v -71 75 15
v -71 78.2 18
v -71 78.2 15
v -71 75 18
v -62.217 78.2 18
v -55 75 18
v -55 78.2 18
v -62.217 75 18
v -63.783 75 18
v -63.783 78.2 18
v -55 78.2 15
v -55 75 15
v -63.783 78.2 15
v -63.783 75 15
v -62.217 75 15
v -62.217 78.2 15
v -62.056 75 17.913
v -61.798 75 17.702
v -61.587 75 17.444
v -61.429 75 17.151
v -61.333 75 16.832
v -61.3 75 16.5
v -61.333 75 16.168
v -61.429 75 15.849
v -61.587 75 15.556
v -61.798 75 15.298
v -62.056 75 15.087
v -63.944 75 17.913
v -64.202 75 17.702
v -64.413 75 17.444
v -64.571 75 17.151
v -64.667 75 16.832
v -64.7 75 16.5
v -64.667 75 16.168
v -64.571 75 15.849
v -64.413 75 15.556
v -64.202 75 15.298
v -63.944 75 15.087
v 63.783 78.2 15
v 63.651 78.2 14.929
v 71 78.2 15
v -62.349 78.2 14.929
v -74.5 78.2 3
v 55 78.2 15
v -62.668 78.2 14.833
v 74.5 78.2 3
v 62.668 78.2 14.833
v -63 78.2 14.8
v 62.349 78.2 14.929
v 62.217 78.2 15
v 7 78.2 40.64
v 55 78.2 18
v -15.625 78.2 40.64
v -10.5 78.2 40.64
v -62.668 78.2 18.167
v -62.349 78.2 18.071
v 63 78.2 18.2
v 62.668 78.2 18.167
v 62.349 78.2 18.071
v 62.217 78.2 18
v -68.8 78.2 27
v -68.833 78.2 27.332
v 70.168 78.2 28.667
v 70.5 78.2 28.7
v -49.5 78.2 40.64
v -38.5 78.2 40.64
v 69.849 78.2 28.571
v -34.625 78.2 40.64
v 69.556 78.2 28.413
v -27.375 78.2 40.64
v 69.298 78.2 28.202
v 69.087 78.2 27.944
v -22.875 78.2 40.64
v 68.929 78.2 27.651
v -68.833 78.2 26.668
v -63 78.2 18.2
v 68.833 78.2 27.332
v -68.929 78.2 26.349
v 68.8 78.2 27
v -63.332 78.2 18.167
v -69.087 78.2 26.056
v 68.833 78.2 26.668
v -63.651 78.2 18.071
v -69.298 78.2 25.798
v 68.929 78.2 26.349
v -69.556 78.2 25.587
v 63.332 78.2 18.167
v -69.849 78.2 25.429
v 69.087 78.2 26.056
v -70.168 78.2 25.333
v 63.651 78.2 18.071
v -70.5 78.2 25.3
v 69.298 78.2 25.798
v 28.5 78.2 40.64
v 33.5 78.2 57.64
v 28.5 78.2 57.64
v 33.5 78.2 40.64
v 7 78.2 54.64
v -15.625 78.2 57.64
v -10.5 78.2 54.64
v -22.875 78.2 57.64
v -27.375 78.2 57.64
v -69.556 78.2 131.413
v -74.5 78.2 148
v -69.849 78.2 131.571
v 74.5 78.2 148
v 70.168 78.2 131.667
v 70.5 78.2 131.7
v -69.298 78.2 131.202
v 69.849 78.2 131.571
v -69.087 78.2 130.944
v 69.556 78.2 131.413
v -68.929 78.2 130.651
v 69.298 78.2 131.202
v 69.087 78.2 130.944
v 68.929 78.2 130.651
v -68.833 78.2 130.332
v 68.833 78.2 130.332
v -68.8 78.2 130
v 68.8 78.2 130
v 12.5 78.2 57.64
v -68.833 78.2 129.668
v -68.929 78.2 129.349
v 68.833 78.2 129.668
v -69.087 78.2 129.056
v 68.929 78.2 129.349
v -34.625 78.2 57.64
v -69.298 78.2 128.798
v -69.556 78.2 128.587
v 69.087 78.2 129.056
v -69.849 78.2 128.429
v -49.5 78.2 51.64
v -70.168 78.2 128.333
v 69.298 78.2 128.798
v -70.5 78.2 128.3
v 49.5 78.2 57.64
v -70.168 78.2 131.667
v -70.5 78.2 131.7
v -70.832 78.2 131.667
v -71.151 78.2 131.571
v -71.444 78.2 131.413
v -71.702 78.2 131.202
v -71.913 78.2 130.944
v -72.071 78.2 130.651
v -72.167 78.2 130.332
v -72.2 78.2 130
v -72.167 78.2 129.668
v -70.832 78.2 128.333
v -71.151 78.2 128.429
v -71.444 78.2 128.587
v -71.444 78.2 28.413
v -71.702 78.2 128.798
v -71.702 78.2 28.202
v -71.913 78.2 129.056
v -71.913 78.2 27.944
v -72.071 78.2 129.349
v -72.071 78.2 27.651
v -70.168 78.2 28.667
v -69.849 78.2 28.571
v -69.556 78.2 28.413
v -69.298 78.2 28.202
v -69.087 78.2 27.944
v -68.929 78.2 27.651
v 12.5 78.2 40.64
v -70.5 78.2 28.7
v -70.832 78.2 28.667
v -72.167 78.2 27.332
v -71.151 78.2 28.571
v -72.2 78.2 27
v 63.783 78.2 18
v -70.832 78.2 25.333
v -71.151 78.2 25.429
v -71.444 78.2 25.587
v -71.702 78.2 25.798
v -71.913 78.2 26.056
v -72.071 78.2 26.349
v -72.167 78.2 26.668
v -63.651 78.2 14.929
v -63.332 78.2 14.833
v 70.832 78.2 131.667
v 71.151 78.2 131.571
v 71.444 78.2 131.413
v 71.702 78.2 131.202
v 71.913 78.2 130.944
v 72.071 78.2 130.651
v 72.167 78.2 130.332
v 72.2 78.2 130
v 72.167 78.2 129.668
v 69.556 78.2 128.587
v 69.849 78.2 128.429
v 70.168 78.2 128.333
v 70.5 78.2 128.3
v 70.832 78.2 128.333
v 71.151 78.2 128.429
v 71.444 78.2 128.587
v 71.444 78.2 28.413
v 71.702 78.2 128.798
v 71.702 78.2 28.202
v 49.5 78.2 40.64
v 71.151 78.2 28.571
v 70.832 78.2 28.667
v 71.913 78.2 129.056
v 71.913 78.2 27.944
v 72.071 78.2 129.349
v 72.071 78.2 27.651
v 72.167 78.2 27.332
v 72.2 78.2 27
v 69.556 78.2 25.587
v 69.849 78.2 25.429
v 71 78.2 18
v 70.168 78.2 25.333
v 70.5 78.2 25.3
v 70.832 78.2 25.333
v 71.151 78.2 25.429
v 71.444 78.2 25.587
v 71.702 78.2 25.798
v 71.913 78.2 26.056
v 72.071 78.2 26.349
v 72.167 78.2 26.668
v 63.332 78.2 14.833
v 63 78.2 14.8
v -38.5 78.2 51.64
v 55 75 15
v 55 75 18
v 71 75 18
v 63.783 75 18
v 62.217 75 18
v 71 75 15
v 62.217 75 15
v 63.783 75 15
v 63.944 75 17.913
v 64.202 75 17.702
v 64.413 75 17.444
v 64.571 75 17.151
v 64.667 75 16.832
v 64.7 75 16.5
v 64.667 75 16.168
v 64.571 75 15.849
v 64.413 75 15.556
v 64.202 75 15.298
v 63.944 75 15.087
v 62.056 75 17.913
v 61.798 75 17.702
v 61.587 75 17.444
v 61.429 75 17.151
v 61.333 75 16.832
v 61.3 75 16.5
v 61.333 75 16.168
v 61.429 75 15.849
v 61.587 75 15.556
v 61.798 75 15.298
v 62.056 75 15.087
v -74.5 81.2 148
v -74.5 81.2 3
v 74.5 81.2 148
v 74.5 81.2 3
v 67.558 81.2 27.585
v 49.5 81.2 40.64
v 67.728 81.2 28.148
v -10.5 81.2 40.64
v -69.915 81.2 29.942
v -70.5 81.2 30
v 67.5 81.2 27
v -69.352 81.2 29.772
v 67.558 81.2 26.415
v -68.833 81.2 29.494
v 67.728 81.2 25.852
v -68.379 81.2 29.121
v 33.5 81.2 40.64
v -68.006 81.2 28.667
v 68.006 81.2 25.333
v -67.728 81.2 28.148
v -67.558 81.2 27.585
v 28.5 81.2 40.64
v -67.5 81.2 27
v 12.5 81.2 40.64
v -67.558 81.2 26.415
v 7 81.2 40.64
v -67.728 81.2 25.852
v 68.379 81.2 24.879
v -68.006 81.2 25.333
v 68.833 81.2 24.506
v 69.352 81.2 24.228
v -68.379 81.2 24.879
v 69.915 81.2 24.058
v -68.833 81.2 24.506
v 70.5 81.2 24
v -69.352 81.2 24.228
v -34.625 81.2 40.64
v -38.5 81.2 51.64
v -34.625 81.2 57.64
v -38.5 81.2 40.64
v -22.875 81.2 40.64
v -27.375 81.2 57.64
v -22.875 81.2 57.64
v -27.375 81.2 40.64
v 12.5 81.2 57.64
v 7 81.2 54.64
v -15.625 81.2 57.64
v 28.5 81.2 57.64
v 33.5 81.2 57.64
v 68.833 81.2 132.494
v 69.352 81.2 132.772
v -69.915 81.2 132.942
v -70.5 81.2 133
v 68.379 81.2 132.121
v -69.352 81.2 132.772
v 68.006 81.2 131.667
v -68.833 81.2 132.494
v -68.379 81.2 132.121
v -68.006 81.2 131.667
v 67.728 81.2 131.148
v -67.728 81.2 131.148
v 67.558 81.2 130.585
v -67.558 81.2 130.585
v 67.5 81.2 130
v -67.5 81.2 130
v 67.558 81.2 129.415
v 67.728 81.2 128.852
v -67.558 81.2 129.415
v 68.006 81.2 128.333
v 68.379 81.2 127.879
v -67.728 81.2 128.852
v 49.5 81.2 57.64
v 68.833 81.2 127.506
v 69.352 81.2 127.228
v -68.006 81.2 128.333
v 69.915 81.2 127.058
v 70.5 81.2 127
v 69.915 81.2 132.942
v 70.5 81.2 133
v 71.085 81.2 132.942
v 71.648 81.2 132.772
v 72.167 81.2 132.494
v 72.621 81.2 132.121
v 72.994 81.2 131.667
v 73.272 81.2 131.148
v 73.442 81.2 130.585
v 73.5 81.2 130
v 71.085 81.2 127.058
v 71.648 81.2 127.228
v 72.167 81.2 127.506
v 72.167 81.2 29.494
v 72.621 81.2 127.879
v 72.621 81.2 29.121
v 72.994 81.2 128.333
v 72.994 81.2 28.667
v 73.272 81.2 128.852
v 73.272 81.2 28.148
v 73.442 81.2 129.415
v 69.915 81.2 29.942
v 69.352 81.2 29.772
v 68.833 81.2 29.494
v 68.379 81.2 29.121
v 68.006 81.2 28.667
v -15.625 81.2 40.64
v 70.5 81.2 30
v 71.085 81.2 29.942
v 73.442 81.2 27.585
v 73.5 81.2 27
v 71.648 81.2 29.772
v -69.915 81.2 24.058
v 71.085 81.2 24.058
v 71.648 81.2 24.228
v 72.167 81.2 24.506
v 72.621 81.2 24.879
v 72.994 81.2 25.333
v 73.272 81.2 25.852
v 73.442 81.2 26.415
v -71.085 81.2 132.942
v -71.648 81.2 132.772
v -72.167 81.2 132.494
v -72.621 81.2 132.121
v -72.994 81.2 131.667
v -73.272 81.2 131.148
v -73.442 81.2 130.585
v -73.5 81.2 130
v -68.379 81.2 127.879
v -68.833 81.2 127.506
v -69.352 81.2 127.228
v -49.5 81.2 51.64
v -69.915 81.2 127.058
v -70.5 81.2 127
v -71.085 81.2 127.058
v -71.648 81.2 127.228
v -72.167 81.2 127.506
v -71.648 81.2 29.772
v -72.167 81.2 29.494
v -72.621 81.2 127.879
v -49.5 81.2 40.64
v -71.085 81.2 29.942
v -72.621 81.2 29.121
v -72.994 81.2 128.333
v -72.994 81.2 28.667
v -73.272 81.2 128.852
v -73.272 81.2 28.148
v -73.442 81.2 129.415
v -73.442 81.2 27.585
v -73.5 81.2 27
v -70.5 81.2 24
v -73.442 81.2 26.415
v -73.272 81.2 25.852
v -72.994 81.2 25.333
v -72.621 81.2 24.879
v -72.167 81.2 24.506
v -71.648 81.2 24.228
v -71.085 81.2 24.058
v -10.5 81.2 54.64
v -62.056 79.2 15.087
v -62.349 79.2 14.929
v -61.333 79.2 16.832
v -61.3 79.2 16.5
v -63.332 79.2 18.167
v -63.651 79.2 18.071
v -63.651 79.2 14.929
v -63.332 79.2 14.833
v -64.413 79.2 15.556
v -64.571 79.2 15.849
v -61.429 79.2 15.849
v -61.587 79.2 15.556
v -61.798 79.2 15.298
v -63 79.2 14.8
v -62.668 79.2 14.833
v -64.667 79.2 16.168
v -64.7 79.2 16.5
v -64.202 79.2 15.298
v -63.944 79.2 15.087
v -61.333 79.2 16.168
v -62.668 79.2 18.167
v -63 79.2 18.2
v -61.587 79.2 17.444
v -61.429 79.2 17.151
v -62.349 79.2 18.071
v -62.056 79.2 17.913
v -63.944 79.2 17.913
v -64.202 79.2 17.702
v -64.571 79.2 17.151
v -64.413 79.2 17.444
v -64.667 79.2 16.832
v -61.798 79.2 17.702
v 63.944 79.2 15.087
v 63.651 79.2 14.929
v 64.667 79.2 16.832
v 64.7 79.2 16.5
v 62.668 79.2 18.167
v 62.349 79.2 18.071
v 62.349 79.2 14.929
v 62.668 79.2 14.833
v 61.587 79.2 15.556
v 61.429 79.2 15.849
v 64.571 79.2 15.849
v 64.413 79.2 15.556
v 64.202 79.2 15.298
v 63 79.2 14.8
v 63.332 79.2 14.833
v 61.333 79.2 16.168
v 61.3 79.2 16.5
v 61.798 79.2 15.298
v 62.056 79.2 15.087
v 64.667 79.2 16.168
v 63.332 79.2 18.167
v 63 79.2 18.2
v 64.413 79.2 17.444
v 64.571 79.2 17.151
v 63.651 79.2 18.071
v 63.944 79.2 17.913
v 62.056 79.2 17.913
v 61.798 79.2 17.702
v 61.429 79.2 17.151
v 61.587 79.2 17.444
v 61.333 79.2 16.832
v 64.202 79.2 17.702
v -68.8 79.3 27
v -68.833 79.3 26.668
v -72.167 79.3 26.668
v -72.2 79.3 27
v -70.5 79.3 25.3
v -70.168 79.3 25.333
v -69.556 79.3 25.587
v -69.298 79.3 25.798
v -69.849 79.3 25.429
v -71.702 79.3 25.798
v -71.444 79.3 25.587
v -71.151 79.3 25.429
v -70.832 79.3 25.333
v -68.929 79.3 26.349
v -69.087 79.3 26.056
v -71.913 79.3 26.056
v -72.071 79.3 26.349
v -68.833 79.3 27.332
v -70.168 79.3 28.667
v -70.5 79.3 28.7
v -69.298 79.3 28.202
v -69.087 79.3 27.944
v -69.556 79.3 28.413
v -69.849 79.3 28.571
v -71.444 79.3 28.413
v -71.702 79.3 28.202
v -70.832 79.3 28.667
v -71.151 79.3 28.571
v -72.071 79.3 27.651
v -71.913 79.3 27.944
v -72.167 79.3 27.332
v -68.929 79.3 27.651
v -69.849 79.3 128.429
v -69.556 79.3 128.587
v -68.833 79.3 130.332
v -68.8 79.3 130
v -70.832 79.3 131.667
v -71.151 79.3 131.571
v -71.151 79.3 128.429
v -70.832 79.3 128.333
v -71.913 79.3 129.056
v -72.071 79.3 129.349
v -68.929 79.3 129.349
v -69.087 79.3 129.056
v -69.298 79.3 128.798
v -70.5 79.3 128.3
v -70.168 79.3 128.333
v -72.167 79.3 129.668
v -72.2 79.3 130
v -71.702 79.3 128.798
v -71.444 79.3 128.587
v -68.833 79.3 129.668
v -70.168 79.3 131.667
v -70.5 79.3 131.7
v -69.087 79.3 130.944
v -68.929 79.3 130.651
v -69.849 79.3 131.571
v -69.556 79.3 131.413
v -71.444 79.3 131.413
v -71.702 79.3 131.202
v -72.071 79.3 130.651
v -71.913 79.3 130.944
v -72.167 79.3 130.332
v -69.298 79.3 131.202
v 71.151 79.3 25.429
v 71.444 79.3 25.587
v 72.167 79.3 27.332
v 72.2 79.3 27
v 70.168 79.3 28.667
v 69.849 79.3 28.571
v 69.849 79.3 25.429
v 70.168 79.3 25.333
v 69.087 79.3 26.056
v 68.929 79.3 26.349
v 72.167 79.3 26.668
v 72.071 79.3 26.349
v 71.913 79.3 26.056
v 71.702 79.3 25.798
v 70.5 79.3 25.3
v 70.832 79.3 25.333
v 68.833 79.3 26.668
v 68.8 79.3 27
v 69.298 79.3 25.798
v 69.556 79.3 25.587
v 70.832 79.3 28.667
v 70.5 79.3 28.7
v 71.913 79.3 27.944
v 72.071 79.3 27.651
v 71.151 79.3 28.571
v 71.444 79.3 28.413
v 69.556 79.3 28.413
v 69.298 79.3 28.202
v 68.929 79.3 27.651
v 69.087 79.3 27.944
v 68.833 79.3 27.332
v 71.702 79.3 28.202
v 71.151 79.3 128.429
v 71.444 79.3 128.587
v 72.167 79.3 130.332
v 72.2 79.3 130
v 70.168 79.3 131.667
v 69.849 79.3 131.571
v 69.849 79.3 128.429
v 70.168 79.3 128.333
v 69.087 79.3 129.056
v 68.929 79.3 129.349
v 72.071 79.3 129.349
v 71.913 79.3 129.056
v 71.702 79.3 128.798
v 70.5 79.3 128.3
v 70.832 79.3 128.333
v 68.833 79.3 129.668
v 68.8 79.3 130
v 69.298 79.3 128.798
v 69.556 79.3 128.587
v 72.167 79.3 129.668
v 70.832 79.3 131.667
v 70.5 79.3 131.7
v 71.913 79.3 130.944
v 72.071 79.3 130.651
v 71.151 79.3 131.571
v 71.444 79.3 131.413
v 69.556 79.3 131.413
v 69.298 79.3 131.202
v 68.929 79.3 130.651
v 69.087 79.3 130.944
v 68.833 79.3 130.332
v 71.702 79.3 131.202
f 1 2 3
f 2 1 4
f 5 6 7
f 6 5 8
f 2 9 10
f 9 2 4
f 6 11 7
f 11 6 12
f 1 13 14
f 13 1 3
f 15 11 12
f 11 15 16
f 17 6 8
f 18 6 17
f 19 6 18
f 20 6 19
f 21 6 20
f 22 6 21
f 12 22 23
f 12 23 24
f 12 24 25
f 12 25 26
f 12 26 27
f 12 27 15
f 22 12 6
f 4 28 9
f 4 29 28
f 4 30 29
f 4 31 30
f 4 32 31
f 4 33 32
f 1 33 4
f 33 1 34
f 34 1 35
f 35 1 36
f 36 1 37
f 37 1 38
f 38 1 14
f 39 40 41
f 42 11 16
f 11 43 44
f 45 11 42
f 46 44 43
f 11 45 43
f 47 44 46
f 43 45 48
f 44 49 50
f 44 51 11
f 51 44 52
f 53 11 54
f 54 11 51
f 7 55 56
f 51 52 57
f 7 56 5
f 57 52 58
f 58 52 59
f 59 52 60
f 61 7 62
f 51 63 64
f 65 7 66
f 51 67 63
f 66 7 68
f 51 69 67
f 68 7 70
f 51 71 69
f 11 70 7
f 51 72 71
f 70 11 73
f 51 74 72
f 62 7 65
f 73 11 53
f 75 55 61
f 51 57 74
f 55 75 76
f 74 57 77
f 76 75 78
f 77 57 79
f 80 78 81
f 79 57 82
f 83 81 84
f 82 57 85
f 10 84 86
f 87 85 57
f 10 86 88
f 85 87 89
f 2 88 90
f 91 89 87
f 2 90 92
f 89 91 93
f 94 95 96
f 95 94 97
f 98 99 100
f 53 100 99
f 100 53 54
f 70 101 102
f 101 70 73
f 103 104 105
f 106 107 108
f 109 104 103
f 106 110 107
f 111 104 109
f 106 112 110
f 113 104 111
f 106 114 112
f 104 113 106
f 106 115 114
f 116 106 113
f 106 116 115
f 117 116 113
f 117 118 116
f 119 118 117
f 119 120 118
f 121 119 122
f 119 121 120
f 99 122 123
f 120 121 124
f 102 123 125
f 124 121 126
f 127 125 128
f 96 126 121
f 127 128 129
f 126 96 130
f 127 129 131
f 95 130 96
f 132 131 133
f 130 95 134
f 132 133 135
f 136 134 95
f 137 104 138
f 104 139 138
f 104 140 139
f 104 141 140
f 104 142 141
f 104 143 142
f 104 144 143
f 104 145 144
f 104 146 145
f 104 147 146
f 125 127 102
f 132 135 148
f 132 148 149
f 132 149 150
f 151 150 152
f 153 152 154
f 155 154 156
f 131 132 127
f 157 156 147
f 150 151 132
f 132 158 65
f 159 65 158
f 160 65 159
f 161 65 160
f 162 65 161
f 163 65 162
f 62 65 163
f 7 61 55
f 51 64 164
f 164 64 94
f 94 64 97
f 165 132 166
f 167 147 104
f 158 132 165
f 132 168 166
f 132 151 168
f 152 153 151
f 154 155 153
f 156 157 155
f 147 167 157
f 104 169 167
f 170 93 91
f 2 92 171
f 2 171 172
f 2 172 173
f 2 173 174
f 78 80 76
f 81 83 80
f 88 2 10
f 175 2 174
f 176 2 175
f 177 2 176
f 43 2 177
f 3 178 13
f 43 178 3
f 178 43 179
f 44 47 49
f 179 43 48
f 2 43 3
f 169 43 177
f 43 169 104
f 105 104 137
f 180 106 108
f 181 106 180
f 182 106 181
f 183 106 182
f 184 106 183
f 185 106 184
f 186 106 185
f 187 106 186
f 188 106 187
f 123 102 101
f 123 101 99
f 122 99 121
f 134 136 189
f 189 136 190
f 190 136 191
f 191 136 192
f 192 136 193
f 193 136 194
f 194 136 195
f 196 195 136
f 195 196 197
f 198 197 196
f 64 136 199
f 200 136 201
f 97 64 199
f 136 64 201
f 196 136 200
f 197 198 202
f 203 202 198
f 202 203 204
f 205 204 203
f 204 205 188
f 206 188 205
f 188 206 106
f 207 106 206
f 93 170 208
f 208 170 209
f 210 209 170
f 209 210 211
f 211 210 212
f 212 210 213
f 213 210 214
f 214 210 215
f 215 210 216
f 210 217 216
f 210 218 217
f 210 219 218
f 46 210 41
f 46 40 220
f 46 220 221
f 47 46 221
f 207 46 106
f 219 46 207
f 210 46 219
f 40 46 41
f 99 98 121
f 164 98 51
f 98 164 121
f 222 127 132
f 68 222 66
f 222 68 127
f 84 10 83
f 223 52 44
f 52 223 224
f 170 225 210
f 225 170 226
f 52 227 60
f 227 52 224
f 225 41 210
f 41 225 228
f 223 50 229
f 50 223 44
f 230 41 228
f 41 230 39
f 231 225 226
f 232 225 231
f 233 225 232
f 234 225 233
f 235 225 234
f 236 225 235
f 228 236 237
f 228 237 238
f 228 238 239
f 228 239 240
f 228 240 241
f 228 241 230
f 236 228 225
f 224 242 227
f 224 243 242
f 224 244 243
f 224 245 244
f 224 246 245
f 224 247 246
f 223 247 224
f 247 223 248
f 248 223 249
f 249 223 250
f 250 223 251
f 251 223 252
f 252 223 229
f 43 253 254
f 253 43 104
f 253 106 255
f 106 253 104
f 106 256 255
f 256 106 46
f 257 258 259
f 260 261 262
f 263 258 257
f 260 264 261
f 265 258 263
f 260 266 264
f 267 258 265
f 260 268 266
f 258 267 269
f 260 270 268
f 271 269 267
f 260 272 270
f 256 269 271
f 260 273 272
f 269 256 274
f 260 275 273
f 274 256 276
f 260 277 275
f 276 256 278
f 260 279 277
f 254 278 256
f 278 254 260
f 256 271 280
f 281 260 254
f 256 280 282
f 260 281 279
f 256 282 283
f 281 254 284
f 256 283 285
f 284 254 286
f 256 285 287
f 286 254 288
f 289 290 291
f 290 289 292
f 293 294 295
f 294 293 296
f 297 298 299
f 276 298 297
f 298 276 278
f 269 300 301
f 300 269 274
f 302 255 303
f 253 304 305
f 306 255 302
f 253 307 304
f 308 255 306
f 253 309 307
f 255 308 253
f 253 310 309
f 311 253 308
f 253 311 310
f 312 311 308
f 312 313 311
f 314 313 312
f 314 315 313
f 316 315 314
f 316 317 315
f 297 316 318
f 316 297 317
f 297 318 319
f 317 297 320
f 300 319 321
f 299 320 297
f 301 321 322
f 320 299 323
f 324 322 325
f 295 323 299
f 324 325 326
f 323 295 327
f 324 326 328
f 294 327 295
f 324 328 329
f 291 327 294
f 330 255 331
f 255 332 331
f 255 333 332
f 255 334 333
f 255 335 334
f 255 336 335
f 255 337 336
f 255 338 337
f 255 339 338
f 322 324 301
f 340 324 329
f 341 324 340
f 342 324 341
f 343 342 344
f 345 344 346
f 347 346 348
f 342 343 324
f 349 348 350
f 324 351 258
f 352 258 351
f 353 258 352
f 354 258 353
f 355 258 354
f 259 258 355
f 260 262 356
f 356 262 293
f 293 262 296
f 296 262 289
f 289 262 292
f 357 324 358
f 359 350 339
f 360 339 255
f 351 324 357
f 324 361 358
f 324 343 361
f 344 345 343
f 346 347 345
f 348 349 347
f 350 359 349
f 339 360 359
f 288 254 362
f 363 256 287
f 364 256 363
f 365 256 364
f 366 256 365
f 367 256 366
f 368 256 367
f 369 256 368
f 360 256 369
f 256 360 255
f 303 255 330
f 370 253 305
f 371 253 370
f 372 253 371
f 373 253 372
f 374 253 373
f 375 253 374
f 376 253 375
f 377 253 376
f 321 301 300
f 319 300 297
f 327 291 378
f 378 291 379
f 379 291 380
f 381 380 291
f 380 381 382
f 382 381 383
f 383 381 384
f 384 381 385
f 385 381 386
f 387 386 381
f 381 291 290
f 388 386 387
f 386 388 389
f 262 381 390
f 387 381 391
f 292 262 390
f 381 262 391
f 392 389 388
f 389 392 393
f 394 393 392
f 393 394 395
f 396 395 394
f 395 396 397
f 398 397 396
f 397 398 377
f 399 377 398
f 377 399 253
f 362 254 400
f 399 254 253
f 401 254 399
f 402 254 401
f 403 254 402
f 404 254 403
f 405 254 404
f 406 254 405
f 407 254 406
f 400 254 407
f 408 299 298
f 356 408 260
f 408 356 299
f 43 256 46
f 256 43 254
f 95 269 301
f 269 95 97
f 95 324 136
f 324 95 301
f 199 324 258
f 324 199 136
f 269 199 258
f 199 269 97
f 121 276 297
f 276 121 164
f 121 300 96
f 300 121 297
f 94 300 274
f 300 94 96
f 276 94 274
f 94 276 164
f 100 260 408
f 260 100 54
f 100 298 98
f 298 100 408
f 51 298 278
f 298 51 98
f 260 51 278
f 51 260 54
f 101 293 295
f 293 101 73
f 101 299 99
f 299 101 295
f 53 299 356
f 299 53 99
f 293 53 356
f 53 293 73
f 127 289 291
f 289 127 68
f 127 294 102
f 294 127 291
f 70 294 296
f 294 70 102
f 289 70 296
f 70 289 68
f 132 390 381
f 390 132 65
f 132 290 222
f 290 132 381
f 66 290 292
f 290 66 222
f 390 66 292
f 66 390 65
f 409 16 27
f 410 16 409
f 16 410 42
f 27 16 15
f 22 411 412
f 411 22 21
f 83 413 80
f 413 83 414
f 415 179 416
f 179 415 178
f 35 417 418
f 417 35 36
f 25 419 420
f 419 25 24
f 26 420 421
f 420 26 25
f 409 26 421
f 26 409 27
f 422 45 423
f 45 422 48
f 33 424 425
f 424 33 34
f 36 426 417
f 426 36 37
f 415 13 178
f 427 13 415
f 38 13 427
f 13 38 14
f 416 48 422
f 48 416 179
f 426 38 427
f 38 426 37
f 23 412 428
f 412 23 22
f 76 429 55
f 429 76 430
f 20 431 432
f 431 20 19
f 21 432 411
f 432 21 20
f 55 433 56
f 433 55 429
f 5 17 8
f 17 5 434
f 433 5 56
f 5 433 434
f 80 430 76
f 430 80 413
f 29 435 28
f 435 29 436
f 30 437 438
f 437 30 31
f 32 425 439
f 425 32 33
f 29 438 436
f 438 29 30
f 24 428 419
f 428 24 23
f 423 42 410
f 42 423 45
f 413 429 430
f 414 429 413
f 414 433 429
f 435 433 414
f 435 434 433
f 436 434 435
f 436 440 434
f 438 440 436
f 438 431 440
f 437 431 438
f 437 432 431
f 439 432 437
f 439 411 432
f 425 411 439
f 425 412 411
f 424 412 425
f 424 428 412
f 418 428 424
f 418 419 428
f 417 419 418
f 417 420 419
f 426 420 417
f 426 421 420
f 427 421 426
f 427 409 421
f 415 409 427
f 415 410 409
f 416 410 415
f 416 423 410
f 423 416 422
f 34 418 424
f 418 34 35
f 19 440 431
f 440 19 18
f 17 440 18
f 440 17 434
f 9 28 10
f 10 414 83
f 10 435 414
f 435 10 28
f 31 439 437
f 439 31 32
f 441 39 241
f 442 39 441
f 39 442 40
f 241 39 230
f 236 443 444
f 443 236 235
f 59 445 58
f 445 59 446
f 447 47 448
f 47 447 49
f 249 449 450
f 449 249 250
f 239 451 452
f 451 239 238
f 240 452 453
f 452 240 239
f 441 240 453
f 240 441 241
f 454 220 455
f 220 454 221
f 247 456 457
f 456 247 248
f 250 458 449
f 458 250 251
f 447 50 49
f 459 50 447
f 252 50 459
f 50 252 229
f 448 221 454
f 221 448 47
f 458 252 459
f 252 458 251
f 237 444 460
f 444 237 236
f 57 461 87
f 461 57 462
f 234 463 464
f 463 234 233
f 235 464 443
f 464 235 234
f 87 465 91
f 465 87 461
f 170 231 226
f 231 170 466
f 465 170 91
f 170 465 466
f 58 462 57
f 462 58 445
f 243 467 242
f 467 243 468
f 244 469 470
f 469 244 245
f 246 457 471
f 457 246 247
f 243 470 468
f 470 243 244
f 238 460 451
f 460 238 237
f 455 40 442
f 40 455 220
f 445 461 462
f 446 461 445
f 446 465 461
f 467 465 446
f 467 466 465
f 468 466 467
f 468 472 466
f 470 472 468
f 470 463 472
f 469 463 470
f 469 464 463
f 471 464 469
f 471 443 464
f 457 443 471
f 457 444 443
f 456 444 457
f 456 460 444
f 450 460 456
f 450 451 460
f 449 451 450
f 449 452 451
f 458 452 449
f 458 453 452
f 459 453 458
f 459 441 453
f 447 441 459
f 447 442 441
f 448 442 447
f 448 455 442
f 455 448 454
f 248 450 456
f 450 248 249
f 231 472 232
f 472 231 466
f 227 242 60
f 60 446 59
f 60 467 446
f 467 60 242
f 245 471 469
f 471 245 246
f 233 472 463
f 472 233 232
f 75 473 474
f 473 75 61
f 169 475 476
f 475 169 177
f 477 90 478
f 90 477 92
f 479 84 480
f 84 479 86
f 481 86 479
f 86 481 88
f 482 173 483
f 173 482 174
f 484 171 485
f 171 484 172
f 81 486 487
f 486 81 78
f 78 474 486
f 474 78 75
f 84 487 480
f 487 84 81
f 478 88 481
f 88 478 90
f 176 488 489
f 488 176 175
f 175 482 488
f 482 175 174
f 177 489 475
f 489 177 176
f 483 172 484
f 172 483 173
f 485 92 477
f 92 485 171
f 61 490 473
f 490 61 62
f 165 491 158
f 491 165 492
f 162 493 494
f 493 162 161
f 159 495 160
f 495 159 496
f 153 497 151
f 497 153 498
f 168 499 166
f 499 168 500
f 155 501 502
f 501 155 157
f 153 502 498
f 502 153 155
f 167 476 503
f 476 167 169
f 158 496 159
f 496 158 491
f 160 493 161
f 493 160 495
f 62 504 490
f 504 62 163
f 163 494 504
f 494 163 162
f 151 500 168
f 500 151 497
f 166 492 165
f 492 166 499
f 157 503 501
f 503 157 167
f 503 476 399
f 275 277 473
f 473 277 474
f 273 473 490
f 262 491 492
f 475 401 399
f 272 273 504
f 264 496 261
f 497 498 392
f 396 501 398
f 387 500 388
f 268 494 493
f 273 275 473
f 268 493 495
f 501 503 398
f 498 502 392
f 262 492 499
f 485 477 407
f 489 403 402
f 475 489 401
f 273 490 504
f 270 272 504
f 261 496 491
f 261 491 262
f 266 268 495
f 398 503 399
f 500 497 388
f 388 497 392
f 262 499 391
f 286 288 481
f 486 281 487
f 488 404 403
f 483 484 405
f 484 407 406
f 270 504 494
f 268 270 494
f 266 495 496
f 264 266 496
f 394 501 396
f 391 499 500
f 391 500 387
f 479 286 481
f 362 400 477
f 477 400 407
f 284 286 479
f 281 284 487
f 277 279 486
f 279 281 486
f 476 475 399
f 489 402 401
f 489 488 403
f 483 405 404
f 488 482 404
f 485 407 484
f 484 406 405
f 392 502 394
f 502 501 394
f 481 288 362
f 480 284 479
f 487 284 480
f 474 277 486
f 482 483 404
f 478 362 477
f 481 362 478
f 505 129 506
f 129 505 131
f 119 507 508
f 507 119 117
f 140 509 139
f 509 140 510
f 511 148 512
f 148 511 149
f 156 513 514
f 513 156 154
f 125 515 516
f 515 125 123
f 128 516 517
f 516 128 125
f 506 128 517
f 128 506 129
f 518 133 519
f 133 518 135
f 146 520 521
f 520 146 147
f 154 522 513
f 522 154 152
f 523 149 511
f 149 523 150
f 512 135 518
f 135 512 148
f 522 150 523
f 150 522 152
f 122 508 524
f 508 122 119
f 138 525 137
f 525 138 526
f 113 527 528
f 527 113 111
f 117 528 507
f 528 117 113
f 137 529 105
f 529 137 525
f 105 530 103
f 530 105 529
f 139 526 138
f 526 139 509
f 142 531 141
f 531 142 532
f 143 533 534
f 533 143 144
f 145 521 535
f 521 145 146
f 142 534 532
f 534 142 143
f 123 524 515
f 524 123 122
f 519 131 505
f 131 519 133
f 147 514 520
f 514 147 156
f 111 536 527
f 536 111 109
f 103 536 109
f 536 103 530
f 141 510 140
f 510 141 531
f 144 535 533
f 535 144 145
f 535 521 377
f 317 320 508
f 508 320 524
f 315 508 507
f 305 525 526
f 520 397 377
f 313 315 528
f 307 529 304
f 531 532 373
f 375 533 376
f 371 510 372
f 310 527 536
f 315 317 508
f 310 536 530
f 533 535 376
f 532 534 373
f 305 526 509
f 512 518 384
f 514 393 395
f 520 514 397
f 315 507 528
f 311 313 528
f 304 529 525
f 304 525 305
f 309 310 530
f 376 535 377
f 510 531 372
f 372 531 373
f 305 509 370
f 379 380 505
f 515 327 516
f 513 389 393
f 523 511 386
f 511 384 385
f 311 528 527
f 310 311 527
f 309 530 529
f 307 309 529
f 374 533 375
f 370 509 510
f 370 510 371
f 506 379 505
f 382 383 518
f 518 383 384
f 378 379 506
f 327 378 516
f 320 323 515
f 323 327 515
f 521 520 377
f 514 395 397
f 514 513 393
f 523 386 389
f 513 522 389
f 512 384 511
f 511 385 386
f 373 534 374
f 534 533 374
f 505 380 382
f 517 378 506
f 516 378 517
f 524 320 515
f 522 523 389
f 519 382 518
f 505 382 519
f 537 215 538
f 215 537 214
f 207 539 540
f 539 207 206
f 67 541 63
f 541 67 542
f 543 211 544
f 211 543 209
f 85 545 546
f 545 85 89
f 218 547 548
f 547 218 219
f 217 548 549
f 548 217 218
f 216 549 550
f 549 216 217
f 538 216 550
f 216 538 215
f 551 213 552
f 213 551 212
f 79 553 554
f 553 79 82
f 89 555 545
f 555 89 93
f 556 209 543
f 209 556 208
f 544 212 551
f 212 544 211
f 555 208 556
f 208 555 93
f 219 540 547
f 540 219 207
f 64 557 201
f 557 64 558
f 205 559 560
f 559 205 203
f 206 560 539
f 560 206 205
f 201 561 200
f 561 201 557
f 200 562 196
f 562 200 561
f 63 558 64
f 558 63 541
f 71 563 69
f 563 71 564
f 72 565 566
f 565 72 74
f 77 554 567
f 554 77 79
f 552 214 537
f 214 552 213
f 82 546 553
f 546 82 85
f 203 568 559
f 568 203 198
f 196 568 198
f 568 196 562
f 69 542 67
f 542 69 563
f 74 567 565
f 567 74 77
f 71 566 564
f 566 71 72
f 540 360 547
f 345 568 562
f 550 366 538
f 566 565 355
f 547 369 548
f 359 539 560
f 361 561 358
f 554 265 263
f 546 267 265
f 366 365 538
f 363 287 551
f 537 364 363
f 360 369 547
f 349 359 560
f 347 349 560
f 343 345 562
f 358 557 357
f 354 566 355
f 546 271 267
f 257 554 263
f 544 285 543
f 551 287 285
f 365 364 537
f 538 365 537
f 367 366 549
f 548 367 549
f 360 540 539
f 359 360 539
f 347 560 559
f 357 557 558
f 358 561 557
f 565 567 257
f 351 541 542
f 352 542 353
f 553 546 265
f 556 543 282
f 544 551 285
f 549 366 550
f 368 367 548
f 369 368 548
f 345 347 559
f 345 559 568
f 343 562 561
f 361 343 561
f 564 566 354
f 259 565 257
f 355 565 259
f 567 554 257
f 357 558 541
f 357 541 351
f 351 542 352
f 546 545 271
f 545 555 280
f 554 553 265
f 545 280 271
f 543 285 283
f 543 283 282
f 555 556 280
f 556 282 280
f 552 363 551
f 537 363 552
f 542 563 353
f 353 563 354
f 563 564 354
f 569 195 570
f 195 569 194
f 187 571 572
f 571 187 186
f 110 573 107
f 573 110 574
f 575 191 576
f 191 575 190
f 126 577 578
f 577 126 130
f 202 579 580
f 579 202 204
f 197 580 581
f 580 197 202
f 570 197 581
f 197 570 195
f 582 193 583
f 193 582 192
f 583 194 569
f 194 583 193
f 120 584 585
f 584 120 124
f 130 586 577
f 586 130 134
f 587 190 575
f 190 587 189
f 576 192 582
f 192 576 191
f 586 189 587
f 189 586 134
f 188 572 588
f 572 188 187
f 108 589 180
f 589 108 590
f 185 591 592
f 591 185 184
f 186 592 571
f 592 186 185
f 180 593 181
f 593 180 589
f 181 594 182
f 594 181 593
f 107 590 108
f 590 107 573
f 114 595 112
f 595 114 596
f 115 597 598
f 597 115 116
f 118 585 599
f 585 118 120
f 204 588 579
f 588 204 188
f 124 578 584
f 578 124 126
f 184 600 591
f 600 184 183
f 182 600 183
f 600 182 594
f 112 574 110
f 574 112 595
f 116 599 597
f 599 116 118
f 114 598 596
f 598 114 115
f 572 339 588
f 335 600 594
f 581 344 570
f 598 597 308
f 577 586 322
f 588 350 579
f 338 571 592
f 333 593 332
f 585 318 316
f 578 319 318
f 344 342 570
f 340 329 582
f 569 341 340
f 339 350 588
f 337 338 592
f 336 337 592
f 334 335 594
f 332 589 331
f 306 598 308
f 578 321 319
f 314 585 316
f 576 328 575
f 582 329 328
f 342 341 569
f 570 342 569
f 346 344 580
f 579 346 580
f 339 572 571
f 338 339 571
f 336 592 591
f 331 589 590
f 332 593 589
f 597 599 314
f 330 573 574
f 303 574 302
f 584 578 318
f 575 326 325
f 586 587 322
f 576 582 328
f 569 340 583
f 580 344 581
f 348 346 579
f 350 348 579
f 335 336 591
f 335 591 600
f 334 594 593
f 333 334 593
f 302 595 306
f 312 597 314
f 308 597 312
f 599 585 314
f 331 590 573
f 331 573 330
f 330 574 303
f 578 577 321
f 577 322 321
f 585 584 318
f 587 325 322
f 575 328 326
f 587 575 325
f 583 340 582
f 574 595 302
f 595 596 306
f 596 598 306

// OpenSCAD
//
// ============================================================================
// SteamMachine UM790
// Project Phoenix
//
// Archivo  : rear_panel.scad
// Versión  : 1.0
// Fecha    : 2026-08-03
// Autor    : Pep Ventura (asistido por Claude)
//
// Panel trasero — va UNIDO A LA BANDEJA, no al chasis fijo
// (docs/DESIGN_RULES.md: "El panel trasero irá unido a la bandeja.
// Al extraer la bandeja saldrá también el panel trasero.").
//
// Incluye el recorte de acceso a la IO trasera del UM790
// (conectores: RJ45/USB/alimentación), en la posición ya validada en
// el ensamblaje virtual (um790_pos, um790_rearIO_*, ver
// openscad/reference/components/assembly_positions.scad y um790.scad).
//
// Sistema de coordenadas: igual que
// openscad/reference/components/assembly_positions.scad — origen
// centrado en X/Y, Z=0 en la cara inferior exterior del chasis.
//
// ============================================================================

include <../../../00_parametros.scad>;
include <../../reference/components/assembly_positions.scad>;

$fn = 32;

part_version = "1.0";


//=============================================================================
// MARGEN DE RECORTE DE LA IO TRASERA
//=============================================================================

rear_io_cut_margin = 0.5;  // holgura alrededor de cada conector — reducido de 1mm: con la disposición real del plano, el hueco natural más ajustado (RJ45-USB, 1,75mm) se fusionaba incluso con 1mm de margen. Con 0,5mm queda un separador real de ~0,75mm en el punto más justo.


//=============================================================================
// PLACA MACIZA
//=============================================================================

// AJUSTADO (2026-08-16, mismo criterio que nfc_panel_width y
// lower_panel_width_oversize, confirmado con probeta real): el
// hueco interior real del chasis mide 149mm, no 150mm — mismo
// ajuste aplicado aquí para que los tres paneles frontales/trasero
// coincidan. rear_panel_width definido en 00_parametros.scad (no
// aquí) para que probeta_panel_trasero.scad pueda reutilizar el
// mismo valor sin depender de un `use` a este archivo (las
// variables no se exponen con `use`, solo los módulos).

module rearPanelSolid()
{

    // FALLO CORREGIDO (2026-08-03): el panel arrancaba en Z=0, el
    // mismo espacio que ya ocupa el suelo del chasis fijo (floor.scad)
    // en su borde trasero — colisión real entre dos piezas distintas.
    // Ahora arranca en bottom_thickness, apoyado ENCIMA del suelo, no
    // dentro de él.
    //
    // FALLO CORREGIDO (2026-08-03): el ancho (case_width = 156 mm)
    // solapaba el propio grosor de las paredes laterales (que ocupan
    // X desde ±75 hasta ±78) — colisión real de volumen, no un simple
    // contacto. El panel debe encajar ENTRE las paredes, no
    // solaparlas: ancho corregido a case_width - 2*wall_thickness
    // (150 mm), igual que la bandeja (tray_width) y el panel NFC
    // (nfc_panel_width).
    translate([
        -rear_panel_width/2,
        case_depth/2 - wall_thickness,
        bottom_thickness
    ])

        cube([rear_panel_width, wall_thickness, shell_height-bottom_thickness]);

}


//=============================================================================
// RECORTE DE LA IO TRASERA DEL UM790
//
// Posición derivada de um790_pos (assembly_positions.scad) y de las
// dimensiones del bloque de IO trasera definidas en um790.scad
// (um790_rearIO_width/height, 00_parametros.scad), con un margen para
// que los conectores sean accesibles sin rozar el borde impreso.
//=============================================================================

//=============================================================================
// RECORTES INDIVIDUALES DE CADA CONECTOR DE LA IO TRASERA DEL UM790
//
// PEDIDO POR EL USUARIO (2026-08-03): cada conector con su propio
// recorte, delimitado a su tamaño real (no un hueco genérico).
//
// ACTUALIZADO (2026-08-03, foto real con regla aportada por el
// usuario: "el panel trasero no se adapta a la realidad") — el
// "plano de distribución" de texto usado antes tenía un orden y
// agrupación que NO coinciden con la placa real. Sustituido por la
// disposición que se ve directamente en la foto:
//
//   Orden real, de izquierda a derecha (vista desde atrás, mirando
//   los conectores de frente): USB×2 (apilados verticalmente) |
//   USB×2 (apilados verticalmente) | RJ45 | HDMI | HDMI (uno junto
//   al otro, NO apilados) | conector de alimentación DC.
//
// Esto corrige dos fallos de la versión anterior (basada en el plano
// de texto, que resultó no coincidir): el orden estaba invertido
// (DC-HDMI-RJ45-USB en vez de USB-RJ45-HDMI-DC) y los HDMI estaban
// apilados verticalmente en vez de uno al lado del otro.
//
// Ancho total: estimado con la regla visible en la foto (~108mm) —
// coincide razonablemente con la suma de los tamaños estándar de
// cada conector más separaciones (~102mm), así que la escala es
// creíble. La posición exacta de cada uno dentro de esa fila es una
// distribución uniforme según lo que se aprecia en la foto, no una
// medida milimétrica exacta — pendiente de confirmar si hay forma de
// medirlo con más precisión.
//=============================================================================

// PEDIDO POR EL USUARIO (2026-08-16): "te adjunto el fichero que ya
// he convertido en DXF" — dibujo real a escala en AutoCAD (unidades
// del archivo: centímetros, INSUNITS=5, confirmado antes de usar los
// datos) con las medidas exactas de cada conector trasero. Sustituye
// por completo las estimaciones anteriores basadas en la foto (orden
// USB-USB-RJ45-HDMI-HDMI-DC, y la orientación vertical del HDMI, ya
// acertadas — ahora con medidas precisas en vez de estimadas).
//
// Cada USB apilado es UN ÚNICO recorte rectangular (15x16mm) que
// cubre los dos puertos como una sola abertura — así viene dibujado
// en el CAD, no como dos huecos individuales con separación estimada
// (rear_usb_stack_pitch, ya no se usa).
//
// Referencia Y del CAD verificada contra el proyecto: coincide con
// z_pcb_bottom + Z, casi exacta (0,36mm de diferencia) con el valor
// que ya se usaba antes por estimación — se usan los valores medidos
// directamente, sin necesidad de reajustar el origen.

rear_dc_jack_diameter = 10.0;   // Medido en CAD — 10x10mm CUADRADO (ver nota de corrección abajo)
rear_hdmi_width  = 6.25; rear_hdmi_height = 16.0;  // Medido en CAD (promedio de los dos HDMI: 6,5 y 6,0mm de ancho; antes 6x15, estimado)
rear_rj45_width  = 16.5; rear_rj45_height = 13.0;  // Medido en CAD (antes 16x13.5, estimado — casi igual)
rear_usb_width   = 15.0; rear_usb_height  = 16.0;  // Medido en CAD — recorte único por pareja apilada, no un puerto individual (antes 13x6, estimado, para un solo puerto)
rear_io_center_z = 11.14;  // Medido en CAD (Z = z_pcb_bottom + esto = 49,14, la Z real de USB/HDMI; antes 11.5, estimado)

module rearIOCut()
{

    // [x relativo al centro del grupo (medido en CAD, ya con el
    // espejo trasero->delantero aplicado), ancho, alto, Z propia
    // (si difiere de la Z común), es_redondo]
    connectors = [
        [-41.50, rear_usb_width,       rear_usb_height,       z_pcb_bottom+rear_io_center_z, false],  // USB pareja 1 (recorte único)
        [-20.50, rear_usb_width,       rear_usb_height,       z_pcb_bottom+rear_io_center_z, false],  // USB pareja 2 (recorte único)
        [  1.75, rear_rj45_width,      rear_rj45_height,      z_pcb_bottom+9.64,             false],  // RJ45 — Z propia, medida 1,5mm más baja que USB/HDMI
        [ 19.25, rear_hdmi_width,      rear_hdmi_height,      z_pcb_bottom+rear_io_center_z, false],  // HDMI 1
        [ 31.00, rear_hdmi_width,      rear_hdmi_height,      z_pcb_bottom+rear_io_center_z, false],  // HDMI 2
        // FALLO CORREGIDO (2026-08-16, aviso del usuario): "el
        // conector de alimentación te lo he dibujado cuadrado en el
        // fichero DXF y tú lo has hecho redondo" — el DXF ya lo decía
        // (4 puntos, igual que todos los rectángulos, no una
        // aproximación poligonal de un círculo como las letras) pero
        // lo interpreté mal, asumiendo "conector DC = redondo" por
        // costumbre en vez de fiarme del dato real. Corregido a
        // cuadrado (es_redondo=false).
        [ 44.00, rear_dc_jack_diameter,rear_dc_jack_diameter, z_pcb_bottom+8.14,             false],   // DC — CUADRADO, no redondo — Z propia, medida 3mm más baja que USB/HDMI
    ];

    cutY = case_depth/2 - wall_thickness - 1;
    cutDepth = wall_thickness + 2;

    module cutOne(cX, cZ, cWidth, cHeight, cRound)
    {
        translate([cX, cutY, cZ])
        {
            if (cRound)
            {
                rotate([-90,0,0])
                    cylinder(d = cWidth + 2*rear_io_cut_margin, h = cutDepth, center=false);
            }
            else
            {
                translate([-(cWidth+2*rear_io_cut_margin)/2, 0, -(cHeight+2*rear_io_cut_margin)/2])
                    cube([cWidth+2*rear_io_cut_margin, cutDepth, cHeight+2*rear_io_cut_margin]);
            }
        }
    }

    for(i = [0:len(connectors)-1])
    {

        // Espejo: el CAD muestra la vista desde ATRÁS (mirando los
        // conectores de frente) — este proyecto usa la vista desde
        // DELANTE, así que X se invierte.
        cX      = -connectors[i][0];
        cWidth  = connectors[i][1];
        cHeight = connectors[i][2];
        cZ      = connectors[i][3];
        cRound  = connectors[i][4];

        cutOne(cX, cZ, cWidth, cHeight, cRound);

    }

}


//=============================================================================
// LENGÜETA DE UNIÓN CON LA BANDEJA
//
// docs/02_Mechanical_Layout.md, sección 7: "M3 - panel trasero".
// Resuelve el hueco entre el borde trasero de la bandeja
// (tray_depth/2 = 75 mm) y la cara frontal de este panel
// (case_depth/2 - wall_thickness = 78,2 mm): 3,2 mm — ver
// docs/03_Virtual_Assembly_Report.md.
//
// El inserto M3 va en la bandeja (openscad/parts/01_bandeja/base.scad,
// trayRearBridgeInserts()); aquí solo el taladro de paso.
//
// FALLO CORREGIDO (2026-08-03): la lengüeta estaba a Z≈0-6, la misma
// altura que el suelo del chasis (floor.scad) en su borde trasero —
// colisión real entre dos piezas distintas. La bandeja debe quedar
// ELEVADA sobre los pilares de apoyo del suelo (z_chamber_top=15 a
// z_tray_top=18, ya usado en todo el ensamblaje validado), no a ras
// de suelo — la lengüeta ahora se centra en esa franja real.
//=============================================================================

rear_bridge_width     = 16.0;
rear_bridge_thickness = tray_thickness;  // = grosor real de la bandeja en su posición elevada
rear_screw_clearance  = 3.4;  // holgura de paso para M3
rear_bridge_x_inset   = 15.0; // igual que rear_insert_x_inset, para que coincidan en X
rear_insert_z         = (z_chamber_top + z_tray_top) / 2;  // centrado en el grosor real de la bandeja elevada

module rearBridgeTab(x)
{

    gapY = (case_depth/2 - wall_thickness) - tray_depth/2;

    translate([
        x - rear_bridge_width/2,
        tray_depth/2,
        rear_insert_z - rear_bridge_thickness/2
    ])

        cube([rear_bridge_width, gapY, rear_bridge_thickness]);

}

module rearBridgeTabs()
{

    for(ix=[-1,1])
        rearBridgeTab(ix*(case_width/2 - rear_bridge_x_inset));

}

module rearBridgeScrewHoles()
{

    for(ix=[-1,1])

        translate([
            ix*(case_width/2 - rear_bridge_x_inset),
            tray_depth/2 - 1,
            rear_insert_z
        ])

            rotate([-90,0,0])
                cylinder(d = rear_screw_clearance, h = (case_depth/2 - wall_thickness - tray_depth/2) + 2);

}


//=============================================================================
// TALADROS DE PASO PARA LA FIJACIÓN A LAS PAREDES LATERALES
//
// RETIRADO (2026-08-03): esta fijación adicional (pared ↔ panel
// trasero) colisionaba con el relleno local de la pared
// (side_boss_size = 14 mm de lado, mucho más ancho que el grosor del
// propio panel) — el material del panel alrededor del taladro de
// paso invadía el relleno. Requiere una muesca de alivio en el panel
// para resolverse bien; se deja pendiente para una futura revisión.
// El panel trasero sigue fijado a la bandeja (rearBridgeTabs/
// rearBridgeScrewHoles), ya verificado sin colisión.
//=============================================================================


//=============================================================================
// PANEL TRASERO COMPLETO
//=============================================================================

module rearPanel()
{

    difference()
    {

        union()
        {
            rearPanelSolid();
            rearBridgeTabs();
        }

        rearIOCut();

        rearBridgeScrewHoles();

        rearWallScrewHoles();

    }

}


//=============================================================================
// TORNILLOS DE FIJACIÓN A LAS PAREDES LATERALES — AGUJERO AVELLANADO
//
// Deben coincidir en X con sideMountGlobalX() y en Z con
// rear_wall_screw_z_low/high (openscad/parts/02_chassis/walls.scad,
// rearWallScrewCuts() — misma fuente, assembly_positions.scad).
//
// FALLO CORREGIDO (2026-08-03, dos rondas de aviso del usuario): la
// primera versión dejaba una muesca cuadrada visible; la segunda
// intentaba taparla con un saliente redondo hacia fuera, pero el
// usuario avisó de que un bulto tampoco vale. Solución acordada: el
// inserto de la pared se reculó 3 mm hacia dentro (walls.scad,
// rearWallScrewCuts()) — con eso, el avellanado cabe DENTRO del
// grosor normal del panel, sin ningún saliente.
//=============================================================================

rear_csk_diameter = rear_csk_radius*2;  // 6.0mm, avellanado M3 (radio compartido con walls.scad)
rear_csk_depth    = 1.8;  // dentro de los 3mm del panel

module rearWallScrewHoles()
{

    // FALLO CORREGIDO (2026-08-03, opción 3 elegida por el usuario):
    // mismo criterio que lowerPanelScrewHoles() — panelMountX() en
    // vez de sideMountGlobalX(), misma fórmula que walls.scad
    // (rearWallScrewCuts()), para que coincidan.
    screwX = panelMountX(rear_csk_radius);

    for(ix=[-1,1])
    for(z=[rear_wall_screw_z_low, rear_wall_screw_z_high])
    {

        // Taladro de paso, todo el grosor del panel
        translate([
            ix*screwX,
            case_depth/2 - wall_thickness - 1,
            z
        ])
            rotate([-90,0,0])
                cylinder(d = 3.4, h = wall_thickness+2);

        // Avellanado cónico, recesado en la cara exterior (no
        // atraviesa el panel: cabe en 1,8 de los 3 mm de grosor)
        translate([
            ix*screwX,
            case_depth/2 - rear_csk_depth - 0.1,
            z
        ])
            rotate([-90,0,0])
                cylinder(d1 = 3.4, d2 = rear_csk_diameter, h = rear_csk_depth+0.1);

    }

}


//=============================================================================
// PREVIEW
//=============================================================================

color("Gainsboro")
    rearPanel();
